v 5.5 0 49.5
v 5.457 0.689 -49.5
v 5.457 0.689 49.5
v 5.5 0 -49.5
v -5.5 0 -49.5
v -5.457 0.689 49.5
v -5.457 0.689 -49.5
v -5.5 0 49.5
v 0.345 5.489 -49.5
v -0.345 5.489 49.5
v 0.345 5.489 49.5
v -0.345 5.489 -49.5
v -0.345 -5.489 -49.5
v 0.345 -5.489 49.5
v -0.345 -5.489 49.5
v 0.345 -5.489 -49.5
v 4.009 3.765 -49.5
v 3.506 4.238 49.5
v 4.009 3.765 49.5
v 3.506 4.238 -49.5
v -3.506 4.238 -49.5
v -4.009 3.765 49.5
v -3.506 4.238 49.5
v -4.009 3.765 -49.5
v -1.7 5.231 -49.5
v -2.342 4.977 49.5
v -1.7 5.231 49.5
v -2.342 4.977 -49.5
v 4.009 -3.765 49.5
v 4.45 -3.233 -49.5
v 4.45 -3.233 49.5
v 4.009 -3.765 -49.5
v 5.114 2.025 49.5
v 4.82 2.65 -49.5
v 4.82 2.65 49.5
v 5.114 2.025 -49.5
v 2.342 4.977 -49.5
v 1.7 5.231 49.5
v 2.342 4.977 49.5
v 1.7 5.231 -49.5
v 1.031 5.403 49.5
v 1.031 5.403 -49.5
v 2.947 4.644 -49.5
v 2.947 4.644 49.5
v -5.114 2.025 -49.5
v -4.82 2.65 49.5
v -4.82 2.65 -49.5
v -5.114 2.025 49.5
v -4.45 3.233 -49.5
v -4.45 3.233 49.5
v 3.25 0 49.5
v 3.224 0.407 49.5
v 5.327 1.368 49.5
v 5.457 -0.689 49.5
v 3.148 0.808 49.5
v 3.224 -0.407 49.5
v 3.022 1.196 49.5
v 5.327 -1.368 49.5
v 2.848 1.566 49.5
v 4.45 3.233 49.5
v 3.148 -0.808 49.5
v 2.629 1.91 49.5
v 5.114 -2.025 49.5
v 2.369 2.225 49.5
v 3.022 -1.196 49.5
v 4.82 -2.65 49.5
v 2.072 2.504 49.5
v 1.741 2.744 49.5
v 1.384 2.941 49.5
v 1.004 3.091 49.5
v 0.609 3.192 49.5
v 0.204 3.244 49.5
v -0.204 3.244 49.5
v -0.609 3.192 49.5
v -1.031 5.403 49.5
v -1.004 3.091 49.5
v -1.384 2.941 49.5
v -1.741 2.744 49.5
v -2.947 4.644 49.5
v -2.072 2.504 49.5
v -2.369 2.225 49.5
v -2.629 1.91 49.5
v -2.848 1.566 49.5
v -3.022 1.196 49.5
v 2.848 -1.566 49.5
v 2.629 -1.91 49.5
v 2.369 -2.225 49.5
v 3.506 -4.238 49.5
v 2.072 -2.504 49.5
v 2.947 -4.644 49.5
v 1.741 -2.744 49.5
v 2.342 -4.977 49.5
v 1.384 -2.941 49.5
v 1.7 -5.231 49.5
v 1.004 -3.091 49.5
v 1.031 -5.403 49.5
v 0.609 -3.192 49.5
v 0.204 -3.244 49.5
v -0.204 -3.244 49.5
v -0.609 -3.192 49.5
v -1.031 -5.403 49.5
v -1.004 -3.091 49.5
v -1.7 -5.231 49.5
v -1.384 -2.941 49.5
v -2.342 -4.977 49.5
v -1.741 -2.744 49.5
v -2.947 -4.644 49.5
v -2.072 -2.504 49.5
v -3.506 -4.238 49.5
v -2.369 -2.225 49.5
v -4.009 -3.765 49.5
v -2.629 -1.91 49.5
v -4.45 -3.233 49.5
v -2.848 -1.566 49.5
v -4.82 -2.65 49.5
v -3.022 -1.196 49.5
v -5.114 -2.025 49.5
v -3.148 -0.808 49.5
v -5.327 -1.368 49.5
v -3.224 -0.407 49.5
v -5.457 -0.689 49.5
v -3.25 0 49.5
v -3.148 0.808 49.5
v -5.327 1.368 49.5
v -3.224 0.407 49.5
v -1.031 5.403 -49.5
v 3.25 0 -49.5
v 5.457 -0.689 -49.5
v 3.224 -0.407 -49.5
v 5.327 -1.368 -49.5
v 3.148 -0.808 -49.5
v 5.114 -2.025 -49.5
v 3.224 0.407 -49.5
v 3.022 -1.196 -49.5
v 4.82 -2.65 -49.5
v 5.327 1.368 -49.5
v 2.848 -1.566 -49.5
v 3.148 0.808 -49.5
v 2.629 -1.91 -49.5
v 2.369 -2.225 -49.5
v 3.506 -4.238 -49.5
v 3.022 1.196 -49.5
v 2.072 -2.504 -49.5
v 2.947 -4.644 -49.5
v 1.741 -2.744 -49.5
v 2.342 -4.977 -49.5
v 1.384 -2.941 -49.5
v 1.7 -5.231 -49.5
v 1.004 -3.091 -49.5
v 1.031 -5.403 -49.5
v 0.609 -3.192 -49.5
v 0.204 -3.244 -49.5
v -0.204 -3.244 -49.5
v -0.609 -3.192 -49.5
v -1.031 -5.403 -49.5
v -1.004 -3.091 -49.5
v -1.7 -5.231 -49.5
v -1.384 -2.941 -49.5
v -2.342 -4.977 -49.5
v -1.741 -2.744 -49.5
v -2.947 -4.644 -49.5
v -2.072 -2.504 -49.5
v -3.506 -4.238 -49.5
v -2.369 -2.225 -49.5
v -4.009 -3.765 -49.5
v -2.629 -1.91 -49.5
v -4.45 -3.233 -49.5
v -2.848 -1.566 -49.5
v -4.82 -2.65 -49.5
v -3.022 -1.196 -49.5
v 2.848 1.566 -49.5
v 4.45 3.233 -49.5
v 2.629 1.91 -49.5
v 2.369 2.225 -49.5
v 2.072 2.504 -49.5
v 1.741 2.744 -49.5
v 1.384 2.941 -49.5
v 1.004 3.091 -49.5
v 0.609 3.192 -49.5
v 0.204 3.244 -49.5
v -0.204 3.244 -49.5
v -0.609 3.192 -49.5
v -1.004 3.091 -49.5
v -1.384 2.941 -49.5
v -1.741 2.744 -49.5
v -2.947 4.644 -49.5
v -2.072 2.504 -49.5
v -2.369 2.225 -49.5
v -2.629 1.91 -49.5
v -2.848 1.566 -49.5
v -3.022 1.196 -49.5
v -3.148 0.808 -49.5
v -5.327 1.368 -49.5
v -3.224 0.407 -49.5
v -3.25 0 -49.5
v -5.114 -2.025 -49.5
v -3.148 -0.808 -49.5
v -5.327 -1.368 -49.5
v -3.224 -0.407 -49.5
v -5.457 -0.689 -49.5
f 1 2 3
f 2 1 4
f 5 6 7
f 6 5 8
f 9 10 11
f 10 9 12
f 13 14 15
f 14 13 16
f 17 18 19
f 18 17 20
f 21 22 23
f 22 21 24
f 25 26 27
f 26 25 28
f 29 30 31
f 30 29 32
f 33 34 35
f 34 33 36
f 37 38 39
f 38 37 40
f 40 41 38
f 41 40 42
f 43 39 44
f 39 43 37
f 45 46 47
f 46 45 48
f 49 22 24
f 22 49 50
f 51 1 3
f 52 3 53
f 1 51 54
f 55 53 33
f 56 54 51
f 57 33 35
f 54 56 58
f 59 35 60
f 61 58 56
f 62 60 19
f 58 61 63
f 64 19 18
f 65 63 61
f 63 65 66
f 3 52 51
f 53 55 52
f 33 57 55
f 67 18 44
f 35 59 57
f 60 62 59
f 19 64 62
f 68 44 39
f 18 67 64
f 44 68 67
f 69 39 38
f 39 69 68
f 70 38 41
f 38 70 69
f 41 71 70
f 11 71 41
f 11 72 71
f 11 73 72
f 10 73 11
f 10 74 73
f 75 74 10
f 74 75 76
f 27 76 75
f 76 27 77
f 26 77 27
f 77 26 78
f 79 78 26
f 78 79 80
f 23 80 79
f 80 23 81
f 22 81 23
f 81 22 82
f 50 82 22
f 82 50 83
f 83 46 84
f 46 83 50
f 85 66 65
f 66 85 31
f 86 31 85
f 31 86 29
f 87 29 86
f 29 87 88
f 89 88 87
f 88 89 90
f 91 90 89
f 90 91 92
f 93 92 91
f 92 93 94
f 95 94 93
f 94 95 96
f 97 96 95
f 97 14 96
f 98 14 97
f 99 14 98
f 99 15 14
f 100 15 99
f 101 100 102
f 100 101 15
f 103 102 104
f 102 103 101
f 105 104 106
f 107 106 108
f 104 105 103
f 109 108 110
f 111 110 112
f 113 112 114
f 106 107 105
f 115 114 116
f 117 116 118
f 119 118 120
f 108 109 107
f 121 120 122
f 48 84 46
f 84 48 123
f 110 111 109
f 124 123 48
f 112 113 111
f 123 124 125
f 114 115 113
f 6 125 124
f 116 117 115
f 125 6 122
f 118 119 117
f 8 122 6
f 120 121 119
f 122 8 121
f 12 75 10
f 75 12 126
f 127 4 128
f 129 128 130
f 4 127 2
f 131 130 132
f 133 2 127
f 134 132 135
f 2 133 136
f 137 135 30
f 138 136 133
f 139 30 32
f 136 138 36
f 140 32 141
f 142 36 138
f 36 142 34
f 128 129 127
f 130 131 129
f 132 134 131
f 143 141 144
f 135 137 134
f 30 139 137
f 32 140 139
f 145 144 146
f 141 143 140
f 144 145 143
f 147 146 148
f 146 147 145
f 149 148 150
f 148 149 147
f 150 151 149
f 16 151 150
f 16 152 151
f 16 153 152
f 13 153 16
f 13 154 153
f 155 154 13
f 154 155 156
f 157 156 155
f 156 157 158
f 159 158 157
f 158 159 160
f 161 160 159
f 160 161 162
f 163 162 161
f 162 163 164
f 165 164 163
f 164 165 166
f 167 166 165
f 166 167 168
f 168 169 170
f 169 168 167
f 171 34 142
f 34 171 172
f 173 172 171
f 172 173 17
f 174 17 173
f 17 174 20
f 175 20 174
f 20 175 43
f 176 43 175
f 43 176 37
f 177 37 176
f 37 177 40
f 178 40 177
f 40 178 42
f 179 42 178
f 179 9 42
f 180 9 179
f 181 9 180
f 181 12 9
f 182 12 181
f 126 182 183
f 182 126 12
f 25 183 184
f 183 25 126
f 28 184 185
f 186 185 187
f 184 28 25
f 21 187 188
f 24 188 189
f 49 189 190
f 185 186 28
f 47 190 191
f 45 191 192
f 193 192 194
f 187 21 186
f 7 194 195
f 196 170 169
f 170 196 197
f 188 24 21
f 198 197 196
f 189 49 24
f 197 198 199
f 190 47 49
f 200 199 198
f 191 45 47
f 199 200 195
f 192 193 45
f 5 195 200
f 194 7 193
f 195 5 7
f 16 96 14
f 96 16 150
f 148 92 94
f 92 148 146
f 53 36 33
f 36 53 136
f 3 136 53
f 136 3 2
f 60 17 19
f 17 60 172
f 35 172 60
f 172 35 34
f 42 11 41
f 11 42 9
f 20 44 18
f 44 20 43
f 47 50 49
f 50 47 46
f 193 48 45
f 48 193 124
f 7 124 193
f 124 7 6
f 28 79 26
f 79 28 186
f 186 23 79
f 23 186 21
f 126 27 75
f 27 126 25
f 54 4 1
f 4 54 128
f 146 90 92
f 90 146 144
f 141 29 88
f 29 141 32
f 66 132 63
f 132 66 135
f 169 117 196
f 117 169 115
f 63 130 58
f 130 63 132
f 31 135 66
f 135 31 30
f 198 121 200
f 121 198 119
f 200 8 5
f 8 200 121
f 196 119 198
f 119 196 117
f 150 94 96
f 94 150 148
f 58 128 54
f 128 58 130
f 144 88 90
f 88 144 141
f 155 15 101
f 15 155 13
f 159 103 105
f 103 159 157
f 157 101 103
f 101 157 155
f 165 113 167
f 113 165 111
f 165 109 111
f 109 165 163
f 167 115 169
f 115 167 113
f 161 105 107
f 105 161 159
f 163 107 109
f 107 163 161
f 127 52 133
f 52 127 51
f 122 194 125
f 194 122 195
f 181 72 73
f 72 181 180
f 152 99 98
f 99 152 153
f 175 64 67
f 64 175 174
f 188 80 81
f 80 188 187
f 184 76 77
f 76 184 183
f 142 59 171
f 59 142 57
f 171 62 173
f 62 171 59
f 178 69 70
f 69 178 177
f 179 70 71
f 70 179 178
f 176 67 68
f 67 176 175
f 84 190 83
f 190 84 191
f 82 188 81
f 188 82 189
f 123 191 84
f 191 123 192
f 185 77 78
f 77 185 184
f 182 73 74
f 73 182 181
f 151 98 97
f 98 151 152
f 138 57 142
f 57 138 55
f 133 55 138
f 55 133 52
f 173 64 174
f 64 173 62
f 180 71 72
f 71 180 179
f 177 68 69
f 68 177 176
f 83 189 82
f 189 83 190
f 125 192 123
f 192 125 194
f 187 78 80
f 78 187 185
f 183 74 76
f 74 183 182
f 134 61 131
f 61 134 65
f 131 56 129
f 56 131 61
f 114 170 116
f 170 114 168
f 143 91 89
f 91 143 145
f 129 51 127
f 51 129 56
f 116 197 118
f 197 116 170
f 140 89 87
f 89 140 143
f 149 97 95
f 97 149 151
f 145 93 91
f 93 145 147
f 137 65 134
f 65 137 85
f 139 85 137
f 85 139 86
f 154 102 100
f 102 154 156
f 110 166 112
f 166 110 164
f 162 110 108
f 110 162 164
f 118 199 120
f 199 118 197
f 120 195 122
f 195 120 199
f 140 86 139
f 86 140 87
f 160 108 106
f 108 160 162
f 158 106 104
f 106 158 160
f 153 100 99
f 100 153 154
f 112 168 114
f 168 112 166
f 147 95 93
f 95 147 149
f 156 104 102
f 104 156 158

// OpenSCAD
$fn = 50;


difference() {
	union() {
		translate(v = [0, 0, -49.5000000000]) {
			cylinder(h = 99, r = 5.5000000000);
		}
	}
	union() {
		translate(v = [0, 0, -100.0000000000]) {
			cylinder(h = 200, r = 3.2500000000);
		}
	}
}
